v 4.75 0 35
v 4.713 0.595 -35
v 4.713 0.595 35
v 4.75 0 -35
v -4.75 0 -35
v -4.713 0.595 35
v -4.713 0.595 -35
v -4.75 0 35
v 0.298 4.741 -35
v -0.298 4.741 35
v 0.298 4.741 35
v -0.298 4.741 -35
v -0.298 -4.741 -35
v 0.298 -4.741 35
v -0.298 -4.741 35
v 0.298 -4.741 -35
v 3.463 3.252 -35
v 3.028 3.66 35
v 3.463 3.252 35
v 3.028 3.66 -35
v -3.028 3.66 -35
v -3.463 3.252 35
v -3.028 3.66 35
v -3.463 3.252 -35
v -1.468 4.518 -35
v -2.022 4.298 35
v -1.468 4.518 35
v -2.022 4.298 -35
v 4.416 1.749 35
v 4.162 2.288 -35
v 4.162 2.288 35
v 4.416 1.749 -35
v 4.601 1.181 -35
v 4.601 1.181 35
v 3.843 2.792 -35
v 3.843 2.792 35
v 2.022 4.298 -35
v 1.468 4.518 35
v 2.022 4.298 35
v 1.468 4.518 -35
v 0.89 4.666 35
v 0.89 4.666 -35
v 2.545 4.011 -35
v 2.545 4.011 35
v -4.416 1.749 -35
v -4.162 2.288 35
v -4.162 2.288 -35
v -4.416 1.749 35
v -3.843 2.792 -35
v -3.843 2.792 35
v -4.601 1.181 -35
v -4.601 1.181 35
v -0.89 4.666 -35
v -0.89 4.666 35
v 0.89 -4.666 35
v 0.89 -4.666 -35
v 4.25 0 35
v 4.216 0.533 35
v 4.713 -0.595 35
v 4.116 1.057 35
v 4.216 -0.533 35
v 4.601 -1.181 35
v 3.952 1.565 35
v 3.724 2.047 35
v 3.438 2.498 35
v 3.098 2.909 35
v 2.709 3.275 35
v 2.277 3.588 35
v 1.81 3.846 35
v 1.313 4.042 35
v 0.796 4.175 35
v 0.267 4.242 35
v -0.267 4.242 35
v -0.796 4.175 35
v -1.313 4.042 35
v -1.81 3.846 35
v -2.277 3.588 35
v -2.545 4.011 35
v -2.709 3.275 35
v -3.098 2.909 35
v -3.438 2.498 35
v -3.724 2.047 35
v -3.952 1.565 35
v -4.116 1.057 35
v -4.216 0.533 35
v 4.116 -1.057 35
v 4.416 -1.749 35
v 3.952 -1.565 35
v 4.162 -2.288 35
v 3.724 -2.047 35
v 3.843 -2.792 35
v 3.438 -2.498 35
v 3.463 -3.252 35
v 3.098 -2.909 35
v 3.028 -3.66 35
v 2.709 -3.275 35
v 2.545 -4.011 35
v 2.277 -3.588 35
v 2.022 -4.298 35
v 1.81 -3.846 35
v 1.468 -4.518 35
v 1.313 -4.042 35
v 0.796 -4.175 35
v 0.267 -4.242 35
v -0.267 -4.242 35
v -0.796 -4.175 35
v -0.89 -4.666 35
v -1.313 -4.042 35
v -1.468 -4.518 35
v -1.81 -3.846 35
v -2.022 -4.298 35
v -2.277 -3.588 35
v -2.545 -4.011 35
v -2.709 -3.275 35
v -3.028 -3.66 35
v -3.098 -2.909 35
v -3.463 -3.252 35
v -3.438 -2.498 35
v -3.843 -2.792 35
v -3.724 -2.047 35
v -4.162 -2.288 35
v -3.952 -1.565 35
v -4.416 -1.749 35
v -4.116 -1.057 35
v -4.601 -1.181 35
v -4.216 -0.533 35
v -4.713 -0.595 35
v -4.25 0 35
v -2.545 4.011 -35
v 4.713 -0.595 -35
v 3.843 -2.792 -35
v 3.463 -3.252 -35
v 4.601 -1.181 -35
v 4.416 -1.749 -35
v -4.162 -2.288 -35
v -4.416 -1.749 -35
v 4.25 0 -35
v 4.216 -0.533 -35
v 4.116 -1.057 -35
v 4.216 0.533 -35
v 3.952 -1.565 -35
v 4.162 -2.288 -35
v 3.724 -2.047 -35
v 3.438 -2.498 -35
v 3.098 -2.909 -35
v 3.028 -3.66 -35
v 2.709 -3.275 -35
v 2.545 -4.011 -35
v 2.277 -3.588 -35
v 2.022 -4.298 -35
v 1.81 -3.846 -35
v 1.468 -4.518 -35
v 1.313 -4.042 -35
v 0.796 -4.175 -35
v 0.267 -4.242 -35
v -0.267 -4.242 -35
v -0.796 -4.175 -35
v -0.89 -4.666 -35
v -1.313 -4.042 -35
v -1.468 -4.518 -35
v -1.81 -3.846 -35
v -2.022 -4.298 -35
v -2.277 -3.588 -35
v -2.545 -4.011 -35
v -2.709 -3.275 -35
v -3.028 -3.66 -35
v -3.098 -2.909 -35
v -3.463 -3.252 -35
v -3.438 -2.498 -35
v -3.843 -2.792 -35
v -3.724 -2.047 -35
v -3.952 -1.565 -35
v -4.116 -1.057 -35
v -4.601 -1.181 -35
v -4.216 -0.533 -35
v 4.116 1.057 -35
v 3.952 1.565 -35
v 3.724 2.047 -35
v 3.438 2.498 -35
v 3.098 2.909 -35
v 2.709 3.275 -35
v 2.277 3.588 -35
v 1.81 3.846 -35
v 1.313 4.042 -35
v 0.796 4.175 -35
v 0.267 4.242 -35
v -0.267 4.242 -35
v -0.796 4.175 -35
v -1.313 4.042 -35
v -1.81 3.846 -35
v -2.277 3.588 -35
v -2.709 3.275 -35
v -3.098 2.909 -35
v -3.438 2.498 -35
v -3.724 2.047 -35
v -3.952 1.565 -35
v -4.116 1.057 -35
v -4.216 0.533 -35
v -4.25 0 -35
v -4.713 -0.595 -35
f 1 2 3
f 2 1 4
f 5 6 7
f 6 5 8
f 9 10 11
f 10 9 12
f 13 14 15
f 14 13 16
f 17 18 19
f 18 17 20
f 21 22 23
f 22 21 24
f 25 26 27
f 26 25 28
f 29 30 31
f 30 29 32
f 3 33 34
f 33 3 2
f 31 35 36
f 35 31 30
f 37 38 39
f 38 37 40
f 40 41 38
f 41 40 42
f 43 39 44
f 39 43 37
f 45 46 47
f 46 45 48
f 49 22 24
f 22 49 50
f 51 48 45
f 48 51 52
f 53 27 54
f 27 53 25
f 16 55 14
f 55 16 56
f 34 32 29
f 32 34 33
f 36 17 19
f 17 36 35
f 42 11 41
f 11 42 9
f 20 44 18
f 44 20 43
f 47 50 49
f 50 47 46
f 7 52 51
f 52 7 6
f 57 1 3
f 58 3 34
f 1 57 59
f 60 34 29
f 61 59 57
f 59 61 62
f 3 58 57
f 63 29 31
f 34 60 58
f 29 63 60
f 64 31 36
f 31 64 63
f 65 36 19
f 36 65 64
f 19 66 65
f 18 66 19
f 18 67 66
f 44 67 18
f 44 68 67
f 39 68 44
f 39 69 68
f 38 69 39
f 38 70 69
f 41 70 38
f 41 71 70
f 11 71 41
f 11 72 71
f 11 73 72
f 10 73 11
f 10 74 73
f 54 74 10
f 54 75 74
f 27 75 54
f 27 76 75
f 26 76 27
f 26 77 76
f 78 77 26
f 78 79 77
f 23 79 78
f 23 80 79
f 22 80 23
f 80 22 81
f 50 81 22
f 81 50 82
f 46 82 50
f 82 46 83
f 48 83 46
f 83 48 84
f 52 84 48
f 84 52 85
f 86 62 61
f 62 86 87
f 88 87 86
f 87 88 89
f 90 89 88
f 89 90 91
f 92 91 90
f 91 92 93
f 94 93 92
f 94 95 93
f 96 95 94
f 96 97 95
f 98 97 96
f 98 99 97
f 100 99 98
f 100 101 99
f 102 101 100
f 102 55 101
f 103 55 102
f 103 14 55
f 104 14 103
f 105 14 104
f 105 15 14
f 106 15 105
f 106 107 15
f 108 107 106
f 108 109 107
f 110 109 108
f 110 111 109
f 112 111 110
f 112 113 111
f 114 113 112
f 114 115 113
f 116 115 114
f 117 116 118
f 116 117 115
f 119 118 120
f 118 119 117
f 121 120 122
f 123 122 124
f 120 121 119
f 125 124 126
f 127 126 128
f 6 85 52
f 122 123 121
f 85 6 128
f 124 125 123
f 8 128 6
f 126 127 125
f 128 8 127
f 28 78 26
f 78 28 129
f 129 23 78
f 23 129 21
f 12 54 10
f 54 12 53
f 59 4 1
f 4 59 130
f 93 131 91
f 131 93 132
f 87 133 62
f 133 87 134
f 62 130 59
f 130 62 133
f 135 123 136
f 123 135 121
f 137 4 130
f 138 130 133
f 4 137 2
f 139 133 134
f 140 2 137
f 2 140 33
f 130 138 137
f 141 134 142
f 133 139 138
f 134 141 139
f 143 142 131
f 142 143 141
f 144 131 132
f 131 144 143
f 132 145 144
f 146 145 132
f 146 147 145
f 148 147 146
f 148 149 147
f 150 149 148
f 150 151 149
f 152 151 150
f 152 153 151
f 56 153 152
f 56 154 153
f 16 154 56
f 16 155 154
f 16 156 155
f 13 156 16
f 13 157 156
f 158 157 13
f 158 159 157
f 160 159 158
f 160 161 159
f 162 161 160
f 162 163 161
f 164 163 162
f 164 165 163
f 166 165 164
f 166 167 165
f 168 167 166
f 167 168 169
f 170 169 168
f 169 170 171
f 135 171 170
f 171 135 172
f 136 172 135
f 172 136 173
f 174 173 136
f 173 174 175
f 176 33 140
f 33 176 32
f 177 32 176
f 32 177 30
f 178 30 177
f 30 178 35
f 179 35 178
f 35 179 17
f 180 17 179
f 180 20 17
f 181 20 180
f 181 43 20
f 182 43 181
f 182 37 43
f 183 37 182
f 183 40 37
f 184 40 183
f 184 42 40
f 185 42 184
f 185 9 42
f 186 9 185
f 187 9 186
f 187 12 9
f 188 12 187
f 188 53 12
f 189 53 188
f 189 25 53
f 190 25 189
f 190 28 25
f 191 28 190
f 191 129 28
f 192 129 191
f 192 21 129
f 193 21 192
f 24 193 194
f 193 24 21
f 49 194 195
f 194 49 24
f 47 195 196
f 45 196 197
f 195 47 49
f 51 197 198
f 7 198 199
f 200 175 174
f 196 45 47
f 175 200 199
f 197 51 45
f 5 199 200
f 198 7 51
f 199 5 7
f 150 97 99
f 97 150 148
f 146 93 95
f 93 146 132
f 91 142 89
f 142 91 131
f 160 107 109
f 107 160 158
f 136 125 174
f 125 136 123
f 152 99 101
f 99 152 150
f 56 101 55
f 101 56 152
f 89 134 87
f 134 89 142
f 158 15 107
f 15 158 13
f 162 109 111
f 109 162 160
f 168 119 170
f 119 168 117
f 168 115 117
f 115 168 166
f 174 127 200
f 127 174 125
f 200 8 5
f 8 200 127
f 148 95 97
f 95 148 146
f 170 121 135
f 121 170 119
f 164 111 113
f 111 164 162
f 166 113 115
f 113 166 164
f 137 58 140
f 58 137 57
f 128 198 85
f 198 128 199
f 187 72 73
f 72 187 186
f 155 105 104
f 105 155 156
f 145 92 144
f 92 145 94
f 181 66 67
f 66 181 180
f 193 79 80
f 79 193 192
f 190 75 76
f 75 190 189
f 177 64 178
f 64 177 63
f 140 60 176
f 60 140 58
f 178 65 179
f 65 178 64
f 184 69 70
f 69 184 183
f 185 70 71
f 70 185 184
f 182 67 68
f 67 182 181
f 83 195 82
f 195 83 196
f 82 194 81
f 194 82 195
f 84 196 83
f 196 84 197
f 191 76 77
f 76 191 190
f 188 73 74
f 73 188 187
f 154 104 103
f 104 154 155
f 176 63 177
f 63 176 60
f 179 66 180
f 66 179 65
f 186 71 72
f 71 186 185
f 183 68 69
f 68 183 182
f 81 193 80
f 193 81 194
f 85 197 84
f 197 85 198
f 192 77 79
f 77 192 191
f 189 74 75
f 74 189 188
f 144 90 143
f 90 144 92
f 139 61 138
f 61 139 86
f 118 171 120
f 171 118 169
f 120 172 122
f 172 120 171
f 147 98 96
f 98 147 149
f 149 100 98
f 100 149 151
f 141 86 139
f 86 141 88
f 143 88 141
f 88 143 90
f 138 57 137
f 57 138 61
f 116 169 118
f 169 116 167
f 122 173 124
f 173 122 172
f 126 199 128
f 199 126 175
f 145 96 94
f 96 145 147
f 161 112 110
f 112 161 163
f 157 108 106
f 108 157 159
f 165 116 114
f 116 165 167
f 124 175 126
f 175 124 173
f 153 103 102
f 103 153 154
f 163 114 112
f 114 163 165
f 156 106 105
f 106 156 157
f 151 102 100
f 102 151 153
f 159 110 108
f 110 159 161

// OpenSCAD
$fn = 50;


difference() {
	union() {
		translate(v = [0, 0, -35.0000000000]) {
			cylinder(h = 70, r = 4.7500000000);
		}
	}
	union() {
		translate(v = [0, 0, -100.0000000000]) {
			cylinder(h = 200, r = 4.2500000000);
		}
	}
}
